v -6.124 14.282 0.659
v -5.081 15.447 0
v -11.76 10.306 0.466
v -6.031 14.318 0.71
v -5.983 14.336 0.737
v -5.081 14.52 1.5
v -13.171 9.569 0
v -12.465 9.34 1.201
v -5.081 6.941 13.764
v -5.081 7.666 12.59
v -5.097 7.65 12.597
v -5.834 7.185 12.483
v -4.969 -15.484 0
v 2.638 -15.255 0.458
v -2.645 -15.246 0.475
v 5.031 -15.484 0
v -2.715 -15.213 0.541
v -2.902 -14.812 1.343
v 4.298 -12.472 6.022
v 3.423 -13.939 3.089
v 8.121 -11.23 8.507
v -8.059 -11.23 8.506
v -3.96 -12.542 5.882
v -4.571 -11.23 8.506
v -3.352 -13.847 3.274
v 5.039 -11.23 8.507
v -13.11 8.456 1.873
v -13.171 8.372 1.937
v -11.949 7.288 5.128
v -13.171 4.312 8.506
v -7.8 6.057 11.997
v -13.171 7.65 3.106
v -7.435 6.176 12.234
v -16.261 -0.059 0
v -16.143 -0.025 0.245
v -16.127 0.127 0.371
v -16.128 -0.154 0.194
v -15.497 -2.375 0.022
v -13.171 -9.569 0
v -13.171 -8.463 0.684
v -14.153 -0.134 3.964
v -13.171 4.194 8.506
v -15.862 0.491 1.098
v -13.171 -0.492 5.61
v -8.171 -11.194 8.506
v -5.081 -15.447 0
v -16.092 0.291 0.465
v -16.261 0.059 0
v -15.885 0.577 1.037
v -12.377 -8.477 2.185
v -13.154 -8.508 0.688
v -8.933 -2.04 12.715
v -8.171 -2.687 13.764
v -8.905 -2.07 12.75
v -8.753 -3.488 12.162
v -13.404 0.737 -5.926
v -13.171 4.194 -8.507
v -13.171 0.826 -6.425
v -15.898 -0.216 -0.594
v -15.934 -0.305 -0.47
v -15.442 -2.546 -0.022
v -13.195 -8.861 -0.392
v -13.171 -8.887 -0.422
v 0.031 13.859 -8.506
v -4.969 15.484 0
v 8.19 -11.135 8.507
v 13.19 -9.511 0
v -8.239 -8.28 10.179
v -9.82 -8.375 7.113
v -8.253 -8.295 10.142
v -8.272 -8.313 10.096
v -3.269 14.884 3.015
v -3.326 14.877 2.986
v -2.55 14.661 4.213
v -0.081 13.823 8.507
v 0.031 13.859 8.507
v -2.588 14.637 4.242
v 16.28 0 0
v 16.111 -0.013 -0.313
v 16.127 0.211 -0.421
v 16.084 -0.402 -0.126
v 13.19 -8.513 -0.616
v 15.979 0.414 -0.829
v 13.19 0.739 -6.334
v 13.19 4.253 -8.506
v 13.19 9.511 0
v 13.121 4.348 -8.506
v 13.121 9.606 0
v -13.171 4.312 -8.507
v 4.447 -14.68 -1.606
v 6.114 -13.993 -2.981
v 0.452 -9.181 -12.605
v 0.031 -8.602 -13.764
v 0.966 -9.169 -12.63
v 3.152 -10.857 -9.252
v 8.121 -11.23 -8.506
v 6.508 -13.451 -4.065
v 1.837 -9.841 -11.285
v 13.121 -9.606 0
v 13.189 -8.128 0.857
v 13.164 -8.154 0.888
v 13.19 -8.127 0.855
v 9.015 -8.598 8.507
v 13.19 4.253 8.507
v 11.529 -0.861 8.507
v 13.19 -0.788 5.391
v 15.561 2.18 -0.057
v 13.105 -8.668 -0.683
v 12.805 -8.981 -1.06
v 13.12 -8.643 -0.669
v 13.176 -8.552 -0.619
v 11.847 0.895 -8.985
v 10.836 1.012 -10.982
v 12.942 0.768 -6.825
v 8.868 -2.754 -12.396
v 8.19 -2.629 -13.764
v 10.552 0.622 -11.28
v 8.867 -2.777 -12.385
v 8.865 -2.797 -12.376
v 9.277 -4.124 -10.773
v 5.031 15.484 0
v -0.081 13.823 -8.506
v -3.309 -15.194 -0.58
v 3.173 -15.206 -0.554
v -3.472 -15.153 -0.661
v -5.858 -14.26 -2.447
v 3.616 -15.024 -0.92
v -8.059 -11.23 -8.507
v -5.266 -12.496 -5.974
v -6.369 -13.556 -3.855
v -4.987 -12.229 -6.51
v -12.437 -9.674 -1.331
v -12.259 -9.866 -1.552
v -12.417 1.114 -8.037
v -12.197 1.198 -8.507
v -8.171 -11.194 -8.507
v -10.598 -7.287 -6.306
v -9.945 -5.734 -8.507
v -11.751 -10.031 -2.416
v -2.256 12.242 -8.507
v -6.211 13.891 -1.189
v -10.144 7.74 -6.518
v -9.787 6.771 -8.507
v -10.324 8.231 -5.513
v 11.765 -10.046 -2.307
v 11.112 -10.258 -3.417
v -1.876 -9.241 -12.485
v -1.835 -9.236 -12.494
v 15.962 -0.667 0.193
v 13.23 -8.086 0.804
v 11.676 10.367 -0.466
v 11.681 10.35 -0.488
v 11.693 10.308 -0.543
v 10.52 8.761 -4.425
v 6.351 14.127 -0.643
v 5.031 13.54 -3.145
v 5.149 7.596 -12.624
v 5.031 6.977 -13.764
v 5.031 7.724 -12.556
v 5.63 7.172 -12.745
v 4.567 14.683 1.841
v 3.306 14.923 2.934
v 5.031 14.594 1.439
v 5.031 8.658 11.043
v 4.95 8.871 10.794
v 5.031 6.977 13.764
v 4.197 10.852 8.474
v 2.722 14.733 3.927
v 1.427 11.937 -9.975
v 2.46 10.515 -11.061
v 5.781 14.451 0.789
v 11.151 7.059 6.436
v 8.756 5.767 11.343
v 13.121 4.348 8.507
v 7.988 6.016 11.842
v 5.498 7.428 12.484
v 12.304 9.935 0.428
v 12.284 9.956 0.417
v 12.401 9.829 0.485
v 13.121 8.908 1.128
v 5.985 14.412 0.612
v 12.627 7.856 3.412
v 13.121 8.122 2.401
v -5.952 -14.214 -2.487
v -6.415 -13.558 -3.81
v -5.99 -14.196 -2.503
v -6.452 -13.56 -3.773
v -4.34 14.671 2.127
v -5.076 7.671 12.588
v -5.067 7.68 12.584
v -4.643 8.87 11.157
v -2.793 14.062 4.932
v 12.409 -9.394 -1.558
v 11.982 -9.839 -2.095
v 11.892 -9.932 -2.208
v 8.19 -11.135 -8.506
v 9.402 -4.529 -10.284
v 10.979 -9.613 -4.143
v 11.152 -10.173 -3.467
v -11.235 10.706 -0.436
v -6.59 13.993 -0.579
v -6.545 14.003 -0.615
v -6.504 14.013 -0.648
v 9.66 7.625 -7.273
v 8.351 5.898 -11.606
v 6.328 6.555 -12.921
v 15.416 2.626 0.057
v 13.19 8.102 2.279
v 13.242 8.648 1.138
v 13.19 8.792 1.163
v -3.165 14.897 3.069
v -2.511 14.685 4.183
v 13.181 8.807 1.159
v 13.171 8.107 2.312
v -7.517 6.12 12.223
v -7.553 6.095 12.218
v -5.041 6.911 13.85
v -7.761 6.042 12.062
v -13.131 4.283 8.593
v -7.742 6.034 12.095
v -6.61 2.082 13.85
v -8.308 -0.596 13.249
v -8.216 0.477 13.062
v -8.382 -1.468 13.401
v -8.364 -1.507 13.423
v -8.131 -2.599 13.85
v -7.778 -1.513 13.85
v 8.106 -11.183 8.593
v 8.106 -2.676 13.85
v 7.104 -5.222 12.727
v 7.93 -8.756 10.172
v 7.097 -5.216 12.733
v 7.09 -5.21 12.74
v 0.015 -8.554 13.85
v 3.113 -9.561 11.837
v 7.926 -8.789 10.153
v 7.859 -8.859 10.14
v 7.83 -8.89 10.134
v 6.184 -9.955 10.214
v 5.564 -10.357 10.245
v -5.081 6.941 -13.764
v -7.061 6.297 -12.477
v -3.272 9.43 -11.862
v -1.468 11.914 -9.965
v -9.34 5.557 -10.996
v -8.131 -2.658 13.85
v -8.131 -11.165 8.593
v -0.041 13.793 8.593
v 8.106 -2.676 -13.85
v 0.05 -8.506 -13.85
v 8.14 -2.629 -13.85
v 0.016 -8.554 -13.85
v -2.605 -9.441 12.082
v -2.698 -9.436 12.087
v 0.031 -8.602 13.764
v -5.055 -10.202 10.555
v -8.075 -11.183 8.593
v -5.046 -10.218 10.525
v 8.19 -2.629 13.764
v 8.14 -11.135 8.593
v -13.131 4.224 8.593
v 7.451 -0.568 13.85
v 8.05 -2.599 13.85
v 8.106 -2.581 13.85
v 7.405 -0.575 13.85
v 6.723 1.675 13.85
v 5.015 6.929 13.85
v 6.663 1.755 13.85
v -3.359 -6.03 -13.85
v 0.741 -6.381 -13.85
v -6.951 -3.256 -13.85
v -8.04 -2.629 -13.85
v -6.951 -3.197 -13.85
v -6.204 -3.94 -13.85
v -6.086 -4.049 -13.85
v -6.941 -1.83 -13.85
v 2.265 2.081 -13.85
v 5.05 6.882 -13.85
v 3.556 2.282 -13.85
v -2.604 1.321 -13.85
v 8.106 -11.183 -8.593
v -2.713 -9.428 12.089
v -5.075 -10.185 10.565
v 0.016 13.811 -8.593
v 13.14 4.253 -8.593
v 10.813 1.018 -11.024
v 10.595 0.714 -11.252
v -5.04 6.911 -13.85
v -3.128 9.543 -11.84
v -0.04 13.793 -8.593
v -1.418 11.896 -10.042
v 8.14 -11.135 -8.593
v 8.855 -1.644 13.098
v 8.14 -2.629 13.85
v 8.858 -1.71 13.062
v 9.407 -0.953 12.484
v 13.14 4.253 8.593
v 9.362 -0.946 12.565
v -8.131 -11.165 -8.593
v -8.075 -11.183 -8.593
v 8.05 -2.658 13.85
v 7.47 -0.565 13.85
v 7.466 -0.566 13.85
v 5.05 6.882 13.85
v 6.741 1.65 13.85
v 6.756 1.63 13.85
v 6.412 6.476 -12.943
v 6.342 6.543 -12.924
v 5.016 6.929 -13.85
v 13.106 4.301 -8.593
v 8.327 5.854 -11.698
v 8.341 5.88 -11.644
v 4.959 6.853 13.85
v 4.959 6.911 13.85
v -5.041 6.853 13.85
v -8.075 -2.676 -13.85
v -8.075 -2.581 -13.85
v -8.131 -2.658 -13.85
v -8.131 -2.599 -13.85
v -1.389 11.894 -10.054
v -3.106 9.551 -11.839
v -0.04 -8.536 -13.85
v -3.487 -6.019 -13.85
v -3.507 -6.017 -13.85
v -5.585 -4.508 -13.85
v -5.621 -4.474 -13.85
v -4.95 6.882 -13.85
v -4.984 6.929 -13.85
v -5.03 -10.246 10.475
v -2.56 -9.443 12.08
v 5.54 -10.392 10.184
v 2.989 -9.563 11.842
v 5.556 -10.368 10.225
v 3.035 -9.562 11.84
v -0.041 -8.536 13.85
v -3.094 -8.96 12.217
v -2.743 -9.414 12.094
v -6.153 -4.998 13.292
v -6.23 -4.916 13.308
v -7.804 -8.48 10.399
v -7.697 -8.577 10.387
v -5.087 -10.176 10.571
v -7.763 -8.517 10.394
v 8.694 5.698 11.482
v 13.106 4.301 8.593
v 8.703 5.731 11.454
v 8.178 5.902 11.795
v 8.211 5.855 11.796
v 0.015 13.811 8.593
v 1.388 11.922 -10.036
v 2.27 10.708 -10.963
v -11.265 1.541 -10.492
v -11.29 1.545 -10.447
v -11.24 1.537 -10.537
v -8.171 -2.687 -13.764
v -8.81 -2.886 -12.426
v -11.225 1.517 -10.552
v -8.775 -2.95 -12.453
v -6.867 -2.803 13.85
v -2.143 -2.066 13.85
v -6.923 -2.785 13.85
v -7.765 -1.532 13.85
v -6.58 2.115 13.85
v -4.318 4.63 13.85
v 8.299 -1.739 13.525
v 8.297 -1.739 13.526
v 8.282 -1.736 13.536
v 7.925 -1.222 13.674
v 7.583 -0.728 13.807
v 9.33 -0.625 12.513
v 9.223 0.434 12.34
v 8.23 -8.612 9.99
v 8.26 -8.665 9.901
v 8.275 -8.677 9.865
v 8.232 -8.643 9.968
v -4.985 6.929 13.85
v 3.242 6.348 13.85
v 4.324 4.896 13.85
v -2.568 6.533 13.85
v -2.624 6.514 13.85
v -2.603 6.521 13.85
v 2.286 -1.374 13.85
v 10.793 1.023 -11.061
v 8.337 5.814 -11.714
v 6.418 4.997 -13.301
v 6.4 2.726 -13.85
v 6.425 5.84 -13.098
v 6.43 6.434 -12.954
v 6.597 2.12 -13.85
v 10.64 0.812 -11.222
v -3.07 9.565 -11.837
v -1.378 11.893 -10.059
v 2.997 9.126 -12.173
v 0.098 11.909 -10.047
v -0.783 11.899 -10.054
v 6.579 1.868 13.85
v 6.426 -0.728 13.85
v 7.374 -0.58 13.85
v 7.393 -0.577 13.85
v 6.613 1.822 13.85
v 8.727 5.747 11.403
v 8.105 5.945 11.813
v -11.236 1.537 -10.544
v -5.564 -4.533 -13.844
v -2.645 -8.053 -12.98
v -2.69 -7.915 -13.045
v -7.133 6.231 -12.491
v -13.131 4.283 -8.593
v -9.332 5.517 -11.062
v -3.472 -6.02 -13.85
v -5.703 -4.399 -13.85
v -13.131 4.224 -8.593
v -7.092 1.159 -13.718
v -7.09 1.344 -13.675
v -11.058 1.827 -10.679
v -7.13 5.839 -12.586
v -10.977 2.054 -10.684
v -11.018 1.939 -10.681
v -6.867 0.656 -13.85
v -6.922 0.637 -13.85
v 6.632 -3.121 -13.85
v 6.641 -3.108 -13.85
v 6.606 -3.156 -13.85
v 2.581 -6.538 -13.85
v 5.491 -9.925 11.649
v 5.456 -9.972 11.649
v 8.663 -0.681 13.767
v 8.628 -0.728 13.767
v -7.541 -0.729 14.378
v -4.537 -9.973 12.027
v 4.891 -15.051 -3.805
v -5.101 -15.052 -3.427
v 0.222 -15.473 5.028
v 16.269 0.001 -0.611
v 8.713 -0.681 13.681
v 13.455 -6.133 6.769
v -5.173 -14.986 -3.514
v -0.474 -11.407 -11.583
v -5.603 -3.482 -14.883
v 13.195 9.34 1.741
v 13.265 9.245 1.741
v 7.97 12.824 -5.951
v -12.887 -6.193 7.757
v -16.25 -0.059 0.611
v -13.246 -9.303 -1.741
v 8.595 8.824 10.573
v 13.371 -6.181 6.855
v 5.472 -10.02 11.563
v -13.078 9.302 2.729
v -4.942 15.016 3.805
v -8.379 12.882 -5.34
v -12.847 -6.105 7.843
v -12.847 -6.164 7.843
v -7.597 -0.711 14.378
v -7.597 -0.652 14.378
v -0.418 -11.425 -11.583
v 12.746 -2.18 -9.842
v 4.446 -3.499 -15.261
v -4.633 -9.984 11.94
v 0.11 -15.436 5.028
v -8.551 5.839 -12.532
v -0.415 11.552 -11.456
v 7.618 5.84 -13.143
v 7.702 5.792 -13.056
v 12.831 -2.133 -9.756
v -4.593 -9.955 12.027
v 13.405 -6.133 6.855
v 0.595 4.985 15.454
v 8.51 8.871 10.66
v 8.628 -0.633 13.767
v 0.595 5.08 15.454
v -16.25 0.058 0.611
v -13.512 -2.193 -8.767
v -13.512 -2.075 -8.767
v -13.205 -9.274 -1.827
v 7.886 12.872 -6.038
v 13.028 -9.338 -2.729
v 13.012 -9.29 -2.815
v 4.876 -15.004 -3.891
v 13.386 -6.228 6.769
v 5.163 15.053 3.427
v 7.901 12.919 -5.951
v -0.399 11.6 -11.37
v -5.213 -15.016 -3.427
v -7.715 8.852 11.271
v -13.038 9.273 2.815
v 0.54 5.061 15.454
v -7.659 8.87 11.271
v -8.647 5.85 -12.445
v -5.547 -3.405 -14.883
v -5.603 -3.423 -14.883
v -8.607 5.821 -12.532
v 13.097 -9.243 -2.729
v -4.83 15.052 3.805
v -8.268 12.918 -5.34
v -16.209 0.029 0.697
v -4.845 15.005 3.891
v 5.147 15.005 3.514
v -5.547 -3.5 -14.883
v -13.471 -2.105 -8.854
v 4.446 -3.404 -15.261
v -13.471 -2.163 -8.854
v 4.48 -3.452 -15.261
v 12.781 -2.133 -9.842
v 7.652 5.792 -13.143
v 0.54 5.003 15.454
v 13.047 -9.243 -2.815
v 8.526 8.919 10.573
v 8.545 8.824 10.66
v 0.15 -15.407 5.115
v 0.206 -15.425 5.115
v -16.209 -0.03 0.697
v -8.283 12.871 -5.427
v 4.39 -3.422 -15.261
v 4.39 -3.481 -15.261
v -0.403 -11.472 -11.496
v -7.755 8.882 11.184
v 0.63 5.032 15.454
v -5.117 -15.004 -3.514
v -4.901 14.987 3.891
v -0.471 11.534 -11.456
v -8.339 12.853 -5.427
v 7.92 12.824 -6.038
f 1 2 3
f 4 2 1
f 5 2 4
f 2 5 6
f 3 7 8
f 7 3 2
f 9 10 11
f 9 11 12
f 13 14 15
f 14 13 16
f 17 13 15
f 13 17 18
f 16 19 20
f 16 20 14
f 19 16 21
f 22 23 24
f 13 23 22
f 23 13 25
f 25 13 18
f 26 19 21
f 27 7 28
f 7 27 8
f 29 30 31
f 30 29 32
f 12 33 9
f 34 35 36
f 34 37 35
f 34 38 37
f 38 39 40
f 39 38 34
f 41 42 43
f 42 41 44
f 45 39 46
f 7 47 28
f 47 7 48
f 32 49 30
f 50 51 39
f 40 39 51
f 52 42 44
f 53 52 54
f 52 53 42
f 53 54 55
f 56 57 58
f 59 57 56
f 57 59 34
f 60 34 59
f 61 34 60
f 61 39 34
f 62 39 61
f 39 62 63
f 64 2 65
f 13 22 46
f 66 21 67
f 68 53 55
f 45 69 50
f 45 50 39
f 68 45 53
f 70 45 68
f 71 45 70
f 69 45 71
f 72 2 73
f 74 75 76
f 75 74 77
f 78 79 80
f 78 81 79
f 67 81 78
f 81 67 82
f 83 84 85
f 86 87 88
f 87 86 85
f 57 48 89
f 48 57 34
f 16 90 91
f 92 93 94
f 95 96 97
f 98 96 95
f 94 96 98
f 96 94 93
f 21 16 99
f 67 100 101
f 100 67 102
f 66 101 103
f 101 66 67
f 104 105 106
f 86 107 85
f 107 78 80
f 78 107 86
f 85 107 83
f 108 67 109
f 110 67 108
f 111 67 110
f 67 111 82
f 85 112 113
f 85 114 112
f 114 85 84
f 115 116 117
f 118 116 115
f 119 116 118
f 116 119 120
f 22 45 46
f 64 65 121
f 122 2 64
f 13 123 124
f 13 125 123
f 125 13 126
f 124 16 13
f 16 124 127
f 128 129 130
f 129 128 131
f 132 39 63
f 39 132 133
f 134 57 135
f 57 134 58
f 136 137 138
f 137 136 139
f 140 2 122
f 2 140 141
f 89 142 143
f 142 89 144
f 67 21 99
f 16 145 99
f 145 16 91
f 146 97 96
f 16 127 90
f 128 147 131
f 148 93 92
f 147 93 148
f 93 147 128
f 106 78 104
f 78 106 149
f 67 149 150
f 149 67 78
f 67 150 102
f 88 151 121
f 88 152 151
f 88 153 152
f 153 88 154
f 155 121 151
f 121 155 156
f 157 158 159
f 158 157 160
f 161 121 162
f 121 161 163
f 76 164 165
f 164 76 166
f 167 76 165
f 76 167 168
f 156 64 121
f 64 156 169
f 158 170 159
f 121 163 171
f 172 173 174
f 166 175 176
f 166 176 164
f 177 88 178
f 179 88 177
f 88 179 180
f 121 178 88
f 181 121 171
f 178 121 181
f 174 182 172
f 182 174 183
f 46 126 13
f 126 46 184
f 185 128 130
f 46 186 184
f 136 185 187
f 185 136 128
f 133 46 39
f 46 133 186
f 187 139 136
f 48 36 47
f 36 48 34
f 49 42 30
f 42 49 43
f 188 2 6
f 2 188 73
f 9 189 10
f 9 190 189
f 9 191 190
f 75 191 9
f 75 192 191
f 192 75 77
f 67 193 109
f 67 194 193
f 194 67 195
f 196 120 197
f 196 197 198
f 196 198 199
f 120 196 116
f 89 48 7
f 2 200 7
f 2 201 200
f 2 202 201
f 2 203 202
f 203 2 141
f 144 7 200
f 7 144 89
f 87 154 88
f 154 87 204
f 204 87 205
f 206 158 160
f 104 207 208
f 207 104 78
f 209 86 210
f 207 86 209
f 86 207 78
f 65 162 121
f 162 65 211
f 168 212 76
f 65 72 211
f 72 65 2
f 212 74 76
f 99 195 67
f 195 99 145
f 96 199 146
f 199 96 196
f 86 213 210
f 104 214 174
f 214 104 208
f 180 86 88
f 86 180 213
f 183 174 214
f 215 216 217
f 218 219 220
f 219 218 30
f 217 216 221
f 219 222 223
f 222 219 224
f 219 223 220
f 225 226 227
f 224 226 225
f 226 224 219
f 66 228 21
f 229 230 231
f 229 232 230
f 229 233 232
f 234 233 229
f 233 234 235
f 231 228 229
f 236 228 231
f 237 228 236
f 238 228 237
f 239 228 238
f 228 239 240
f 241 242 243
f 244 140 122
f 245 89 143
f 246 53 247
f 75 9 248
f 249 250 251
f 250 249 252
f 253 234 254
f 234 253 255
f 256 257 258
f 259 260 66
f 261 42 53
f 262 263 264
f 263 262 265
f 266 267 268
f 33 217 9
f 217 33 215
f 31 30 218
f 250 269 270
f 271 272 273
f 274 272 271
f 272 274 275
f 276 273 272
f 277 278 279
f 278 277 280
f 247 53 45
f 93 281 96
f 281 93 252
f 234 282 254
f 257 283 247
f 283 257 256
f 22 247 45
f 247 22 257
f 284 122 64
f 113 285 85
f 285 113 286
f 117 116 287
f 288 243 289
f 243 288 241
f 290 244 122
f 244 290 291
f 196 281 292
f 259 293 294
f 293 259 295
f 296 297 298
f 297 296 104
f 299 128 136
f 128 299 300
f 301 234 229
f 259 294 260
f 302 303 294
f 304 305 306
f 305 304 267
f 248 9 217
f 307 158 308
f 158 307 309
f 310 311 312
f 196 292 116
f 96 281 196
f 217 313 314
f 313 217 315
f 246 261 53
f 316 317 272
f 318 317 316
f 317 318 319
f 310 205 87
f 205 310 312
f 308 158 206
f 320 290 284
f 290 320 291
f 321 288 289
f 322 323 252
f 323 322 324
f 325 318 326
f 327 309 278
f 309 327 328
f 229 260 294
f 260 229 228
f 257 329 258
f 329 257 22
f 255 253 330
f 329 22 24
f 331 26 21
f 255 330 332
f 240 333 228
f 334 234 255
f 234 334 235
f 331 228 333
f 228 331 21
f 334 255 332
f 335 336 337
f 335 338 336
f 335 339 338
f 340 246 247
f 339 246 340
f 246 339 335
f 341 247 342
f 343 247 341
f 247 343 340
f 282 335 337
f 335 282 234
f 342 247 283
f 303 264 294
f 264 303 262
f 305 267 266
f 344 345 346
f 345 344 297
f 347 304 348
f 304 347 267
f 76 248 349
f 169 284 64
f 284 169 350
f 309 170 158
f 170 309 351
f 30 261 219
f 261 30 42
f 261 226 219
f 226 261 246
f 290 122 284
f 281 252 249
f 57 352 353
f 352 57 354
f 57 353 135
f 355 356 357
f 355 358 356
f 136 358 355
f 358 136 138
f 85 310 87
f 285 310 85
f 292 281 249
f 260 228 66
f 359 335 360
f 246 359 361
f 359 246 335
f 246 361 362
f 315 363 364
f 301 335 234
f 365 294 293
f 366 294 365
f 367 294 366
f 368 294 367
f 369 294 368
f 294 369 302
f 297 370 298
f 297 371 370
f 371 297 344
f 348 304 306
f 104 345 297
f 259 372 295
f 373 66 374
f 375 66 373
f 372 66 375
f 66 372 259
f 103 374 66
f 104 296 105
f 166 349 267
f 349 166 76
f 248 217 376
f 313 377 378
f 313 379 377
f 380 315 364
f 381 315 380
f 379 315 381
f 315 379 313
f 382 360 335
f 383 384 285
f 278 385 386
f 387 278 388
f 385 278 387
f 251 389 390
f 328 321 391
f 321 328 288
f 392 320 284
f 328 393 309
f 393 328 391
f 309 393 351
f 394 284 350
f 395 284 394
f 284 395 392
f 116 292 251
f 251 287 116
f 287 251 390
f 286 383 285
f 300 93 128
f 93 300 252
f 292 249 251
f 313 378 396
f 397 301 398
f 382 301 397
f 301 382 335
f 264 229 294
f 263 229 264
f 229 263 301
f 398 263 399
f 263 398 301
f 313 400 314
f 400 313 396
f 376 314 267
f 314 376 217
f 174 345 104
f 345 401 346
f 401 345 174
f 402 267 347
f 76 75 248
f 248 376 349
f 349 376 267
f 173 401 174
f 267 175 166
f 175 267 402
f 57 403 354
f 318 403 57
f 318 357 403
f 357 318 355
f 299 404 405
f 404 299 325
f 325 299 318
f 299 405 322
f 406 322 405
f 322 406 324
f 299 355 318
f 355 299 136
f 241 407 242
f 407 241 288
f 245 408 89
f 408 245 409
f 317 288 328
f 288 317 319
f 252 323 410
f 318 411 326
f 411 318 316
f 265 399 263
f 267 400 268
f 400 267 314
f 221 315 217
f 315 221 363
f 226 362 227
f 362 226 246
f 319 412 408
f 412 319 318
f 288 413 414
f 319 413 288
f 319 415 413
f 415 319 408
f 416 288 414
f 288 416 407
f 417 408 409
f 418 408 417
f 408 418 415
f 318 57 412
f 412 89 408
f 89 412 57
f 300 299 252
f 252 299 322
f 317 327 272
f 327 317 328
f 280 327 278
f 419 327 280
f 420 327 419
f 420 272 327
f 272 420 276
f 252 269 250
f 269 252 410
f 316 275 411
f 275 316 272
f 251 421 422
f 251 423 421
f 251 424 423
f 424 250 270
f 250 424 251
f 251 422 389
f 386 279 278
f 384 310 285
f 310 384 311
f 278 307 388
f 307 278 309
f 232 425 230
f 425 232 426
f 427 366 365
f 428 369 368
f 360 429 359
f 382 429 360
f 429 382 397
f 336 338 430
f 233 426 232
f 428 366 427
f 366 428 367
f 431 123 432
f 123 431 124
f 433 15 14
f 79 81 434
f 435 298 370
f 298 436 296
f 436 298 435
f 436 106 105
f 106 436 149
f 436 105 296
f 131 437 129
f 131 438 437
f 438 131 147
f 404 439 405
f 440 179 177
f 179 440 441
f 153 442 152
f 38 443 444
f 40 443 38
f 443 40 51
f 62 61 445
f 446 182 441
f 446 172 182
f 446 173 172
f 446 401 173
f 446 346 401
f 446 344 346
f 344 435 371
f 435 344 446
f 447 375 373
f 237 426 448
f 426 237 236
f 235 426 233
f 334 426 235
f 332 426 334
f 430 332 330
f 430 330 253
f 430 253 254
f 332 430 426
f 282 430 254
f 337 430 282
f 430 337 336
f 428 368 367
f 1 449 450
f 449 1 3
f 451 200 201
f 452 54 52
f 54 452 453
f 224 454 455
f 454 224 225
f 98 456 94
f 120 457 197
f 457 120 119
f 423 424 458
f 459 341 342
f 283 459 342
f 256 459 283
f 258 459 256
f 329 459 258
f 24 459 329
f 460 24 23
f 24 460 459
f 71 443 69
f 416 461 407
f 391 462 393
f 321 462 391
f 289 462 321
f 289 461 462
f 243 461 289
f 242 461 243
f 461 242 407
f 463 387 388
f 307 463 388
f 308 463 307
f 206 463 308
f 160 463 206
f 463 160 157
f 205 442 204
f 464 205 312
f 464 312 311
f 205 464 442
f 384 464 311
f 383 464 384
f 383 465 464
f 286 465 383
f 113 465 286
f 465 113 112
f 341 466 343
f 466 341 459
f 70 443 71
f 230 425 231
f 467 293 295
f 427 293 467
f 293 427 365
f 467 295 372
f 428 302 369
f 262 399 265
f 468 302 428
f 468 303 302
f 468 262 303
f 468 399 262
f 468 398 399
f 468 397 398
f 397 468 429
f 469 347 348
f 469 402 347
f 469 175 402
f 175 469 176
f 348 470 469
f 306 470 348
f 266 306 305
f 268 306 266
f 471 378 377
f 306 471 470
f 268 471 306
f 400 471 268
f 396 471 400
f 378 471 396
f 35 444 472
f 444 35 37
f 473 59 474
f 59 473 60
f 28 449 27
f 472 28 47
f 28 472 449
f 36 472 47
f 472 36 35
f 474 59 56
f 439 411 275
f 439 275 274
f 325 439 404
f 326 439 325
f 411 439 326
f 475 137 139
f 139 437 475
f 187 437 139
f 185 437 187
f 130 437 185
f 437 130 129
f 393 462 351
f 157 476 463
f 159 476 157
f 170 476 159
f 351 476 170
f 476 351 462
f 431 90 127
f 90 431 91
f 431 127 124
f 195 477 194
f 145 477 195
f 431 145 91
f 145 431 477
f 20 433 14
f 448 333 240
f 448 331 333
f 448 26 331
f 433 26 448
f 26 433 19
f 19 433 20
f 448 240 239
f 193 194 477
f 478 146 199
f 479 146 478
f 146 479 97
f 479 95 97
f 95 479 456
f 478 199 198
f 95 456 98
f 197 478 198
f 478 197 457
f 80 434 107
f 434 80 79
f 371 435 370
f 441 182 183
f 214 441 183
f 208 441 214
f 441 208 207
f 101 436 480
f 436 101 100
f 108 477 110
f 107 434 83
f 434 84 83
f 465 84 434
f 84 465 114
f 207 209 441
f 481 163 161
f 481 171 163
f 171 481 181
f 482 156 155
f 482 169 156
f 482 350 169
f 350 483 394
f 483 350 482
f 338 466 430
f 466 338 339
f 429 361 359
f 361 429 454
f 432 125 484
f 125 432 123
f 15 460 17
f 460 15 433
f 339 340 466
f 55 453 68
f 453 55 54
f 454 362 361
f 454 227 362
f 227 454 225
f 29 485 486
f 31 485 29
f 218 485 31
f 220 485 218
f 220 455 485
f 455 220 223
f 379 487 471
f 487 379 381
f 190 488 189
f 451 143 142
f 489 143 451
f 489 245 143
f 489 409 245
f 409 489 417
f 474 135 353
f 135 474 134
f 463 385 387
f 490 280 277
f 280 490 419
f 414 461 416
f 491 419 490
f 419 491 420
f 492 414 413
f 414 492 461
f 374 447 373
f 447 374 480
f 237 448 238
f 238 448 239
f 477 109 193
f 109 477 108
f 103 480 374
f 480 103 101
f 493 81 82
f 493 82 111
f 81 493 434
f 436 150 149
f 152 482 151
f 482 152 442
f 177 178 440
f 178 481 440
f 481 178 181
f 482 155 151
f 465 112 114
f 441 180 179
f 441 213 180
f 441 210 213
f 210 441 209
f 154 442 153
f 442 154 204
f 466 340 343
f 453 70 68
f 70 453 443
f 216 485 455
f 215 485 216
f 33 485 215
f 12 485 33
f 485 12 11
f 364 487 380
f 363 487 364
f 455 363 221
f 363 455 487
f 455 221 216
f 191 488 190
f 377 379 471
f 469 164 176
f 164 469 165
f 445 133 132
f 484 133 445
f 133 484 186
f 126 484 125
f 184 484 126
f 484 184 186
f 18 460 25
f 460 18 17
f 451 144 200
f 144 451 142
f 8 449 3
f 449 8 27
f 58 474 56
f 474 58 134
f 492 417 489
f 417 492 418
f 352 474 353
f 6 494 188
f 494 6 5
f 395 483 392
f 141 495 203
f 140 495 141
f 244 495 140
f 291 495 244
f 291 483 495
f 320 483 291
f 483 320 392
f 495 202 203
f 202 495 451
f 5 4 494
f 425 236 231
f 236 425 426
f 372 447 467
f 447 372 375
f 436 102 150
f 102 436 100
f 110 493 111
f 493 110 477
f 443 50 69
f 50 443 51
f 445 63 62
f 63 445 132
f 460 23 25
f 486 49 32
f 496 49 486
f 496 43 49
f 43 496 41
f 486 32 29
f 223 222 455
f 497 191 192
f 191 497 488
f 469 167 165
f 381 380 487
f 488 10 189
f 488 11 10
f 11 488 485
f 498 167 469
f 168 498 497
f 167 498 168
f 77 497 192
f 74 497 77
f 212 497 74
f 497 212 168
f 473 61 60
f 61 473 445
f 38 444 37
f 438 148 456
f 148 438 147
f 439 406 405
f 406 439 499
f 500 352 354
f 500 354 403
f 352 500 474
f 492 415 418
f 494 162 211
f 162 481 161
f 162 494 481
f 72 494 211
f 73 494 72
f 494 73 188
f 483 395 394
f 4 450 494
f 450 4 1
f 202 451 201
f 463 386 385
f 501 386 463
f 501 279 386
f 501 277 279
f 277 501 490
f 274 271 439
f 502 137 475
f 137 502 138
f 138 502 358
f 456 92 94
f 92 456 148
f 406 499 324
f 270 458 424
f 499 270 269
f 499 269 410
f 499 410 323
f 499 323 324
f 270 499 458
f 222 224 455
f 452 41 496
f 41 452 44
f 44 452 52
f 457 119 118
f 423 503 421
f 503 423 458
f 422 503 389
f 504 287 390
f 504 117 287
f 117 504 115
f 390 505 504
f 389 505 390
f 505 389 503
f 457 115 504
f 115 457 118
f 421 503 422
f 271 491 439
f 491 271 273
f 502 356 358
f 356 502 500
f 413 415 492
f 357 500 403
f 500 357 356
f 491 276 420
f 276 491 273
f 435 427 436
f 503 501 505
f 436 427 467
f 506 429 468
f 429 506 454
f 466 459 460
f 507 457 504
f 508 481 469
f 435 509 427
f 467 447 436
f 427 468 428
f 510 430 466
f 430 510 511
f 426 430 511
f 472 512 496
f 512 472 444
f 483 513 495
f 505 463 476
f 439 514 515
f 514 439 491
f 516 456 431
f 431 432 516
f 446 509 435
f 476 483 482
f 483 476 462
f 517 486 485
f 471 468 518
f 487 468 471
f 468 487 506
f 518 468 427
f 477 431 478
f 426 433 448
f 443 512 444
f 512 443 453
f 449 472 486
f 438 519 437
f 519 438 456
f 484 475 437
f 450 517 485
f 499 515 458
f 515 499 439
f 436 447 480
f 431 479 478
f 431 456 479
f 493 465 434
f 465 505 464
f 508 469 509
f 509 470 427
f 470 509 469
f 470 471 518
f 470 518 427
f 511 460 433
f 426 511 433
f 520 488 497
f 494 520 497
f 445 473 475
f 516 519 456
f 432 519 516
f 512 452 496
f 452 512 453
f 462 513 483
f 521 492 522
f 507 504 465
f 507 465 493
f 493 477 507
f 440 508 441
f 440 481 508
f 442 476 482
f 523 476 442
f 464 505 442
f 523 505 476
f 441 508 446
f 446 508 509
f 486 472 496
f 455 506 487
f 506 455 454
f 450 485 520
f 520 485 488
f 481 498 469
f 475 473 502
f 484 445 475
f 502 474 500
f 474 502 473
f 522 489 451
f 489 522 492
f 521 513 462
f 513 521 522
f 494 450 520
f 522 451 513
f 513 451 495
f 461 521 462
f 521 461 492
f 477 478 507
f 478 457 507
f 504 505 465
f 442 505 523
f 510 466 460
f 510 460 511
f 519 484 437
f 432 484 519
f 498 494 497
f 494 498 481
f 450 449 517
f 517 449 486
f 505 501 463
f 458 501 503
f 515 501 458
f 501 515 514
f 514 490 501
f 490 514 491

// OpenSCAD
// Auto-generated OpenSCAD file

    inner_points = 10*[[-0.5132325915335268, -1.4956773870023274, -0.34271512053890807], [0.5132015226290007, 1.4957694784624385, 0.34271512053890807], [-1.3164886558141748, -0.9244174678024033, -0.17406815225290823], [0.4860549449459691, -1.4956217926681488, -0.3804565612375623], [-0.4860860138504952, 1.4957138841282598, 0.3804565612375623], [1.3164575869096489, 0.9245095592625141, 0.17406815225290823], [-1.616896733010238, -4.390779222781e-05, 0.06106693383481107], [1.299680079223296, -0.924271919945941, -0.2728765267863734], [-1.299711148127822, 0.9243640114060518, 0.2728765267863734], [1.616865664105712, 0.0001359992523386863, -0.06106693383481107], [-0.556237595762048, -0.34523719270611647, -1.479672427436971], [-0.4552213282331215, -0.9925171560774508, 1.1940016601646186], [-0.04302053868078421, 1.1504862400262665, -1.1369573068980627], [0.05799572884814228, 0.5032062766549321, 1.5367167807035265], [0.443049940717448, -0.34518159837193774, -1.517413868135625], [0.5440662082463744, -0.992461561743272, 1.1562602194659646], [0.7602355255998638, 0.579226320826342, -1.3056042751840629], [0.8612517931287903, -0.06805364254499237, 1.3680698124175268], [-0.8566456729581111, 0.5791363673040587, -1.2445373413492518], [-0.7556294054291846, -0.06814359606727556, 1.4291367462523379], [-0.043371596438175015, -1.137724291379308, -1.1496229384598298], [0.019059890311353907, -1.5377653089795797, 0.5027985225178162], [0.7870310455255046, 1.282407060551355, -0.5950982249693593], [0.8494625322750335, 0.8823660429510828, 1.0573232360082867], [-1.3430672101137342, -0.21340632570331178, -0.8767464116734562], [-1.2806357233642052, -0.6134473433035833, 0.7756750493041897], [-0.8298501530324705, 1.2823171070290713, -0.5340312911345482], [-0.7674186662829414, 0.8822760894287998, 1.1183901698430978], [1.2731015249237372, -0.21326077784684974, -0.9755547862069215], [1.3355330116732662, -0.6133017954471214, 0.6768666747707244]];

    outer_points = 10*[[-1.6180339887093724, 0.0, -1.1451363168900623e-05], [1.6180339887093724, 0.0, 1.1451363168900623e-05], [-1.3090169943343848, -0.9510565162945183, -1.0363544707418131e-05], [-1.3090169943499435, 0.9510565162945183, -8.165150117381781e-06], [1.3090169943499435, -0.9510565162945183, 8.165150117381781e-06], [1.3090169943343848, 0.9510565162945183, 1.0363544707418131e-05], [-0.49999999997489053, -1.538841768586599, -5.317204411630996e-06], [-0.5000000000000652, 1.538841768586599, -1.7601272442682922e-06], [0.5000000000000652, -1.538841768586599, 1.7601272442682922e-06], [0.49999999997489053, 1.538841768586599, 5.317204411630996e-06], [-0.8090267354638724, -0.2628671468326607, 1.3763758909435393], [-0.8090072532411997, -0.2628639652861217, -1.3763879499280285], [0.8090072532455, -0.2628671468326607, 1.3763873423067081], [0.8090267354681727, -0.2628639652861217, -1.3763764985648597], [-0.5000097411044434, 0.6881893694618576, 1.3763791771565905], [-0.49999025888177073, 0.6881925510083967, -1.376384663714977], [0.4999902588705123, 0.6881893694618576, 1.3763862544882464], [0.500009741093185, 0.6881925510083967, -1.3763775863833212], [-9.741104378259176e-06, -0.8506523991247412, 1.376380937283835], [9.741118294443999e-06, -0.8506492175782021, -1.3763829035877326], [-1.3090230146835373, 0.42532442102378687, 0.8506420355587297], [-1.3090109740077491, 0.4253263873276848, -0.8506595811016057], [1.309010974000791, 0.42532442102378687, 0.8506605642535546], [1.309023014676579, 0.4253263873276848, -0.8506410524067808], [-0.809023014683472, -1.1135173475628122, 0.850643795685974], [-0.8090109740076838, -1.1135153812589142, -0.8506578209743614], [0.8090109740259004, -1.1135173475628122, 0.8506552470491429], [0.8090230147016886, -1.1135153812589142, -0.8506463696111926], [-6.020349152492207e-06, 1.3763809373183054, 0.8506523991034373], [6.020326635632171e-06, 1.3763829036222033, -0.8506492175568982]];

    // Convex hull for inner set (I)
    module inner_hull() {
        hull() {
            for (p = inner_points) {
                translate(p) sphere(r=0.1);
            }
        }
    }

    // Convex hull for outer set (O) minus inner hull (O \ I)
    module outer_minus_inner() {
        difference() {
            hull() {
                for (p = outer_points) {
                    translate(p) sphere(r=0.1);
                }
            }
            inner_hull(); // Subtract inner hull
        }
    }

    // Convex hull for outer set (O) minus all translated inner hulls
    module outer_minus_AllTranslationInner() {
        difference() {
            hull() {
                for (p = outer_points) {
                    translate(p) sphere(r=0.1);
                }
            }
            hull() {
                translate([0,0,50]) inner_hull();
                translate([0,0,-50]) inner_hull();
            }; // Subtract translated inner hulls
        }
    }

    // Difference between outer_minus_inner and outer_minus_AllTranslationInner
    module outer_minus_inner_diff() {
        difference() {
            // Outer minus inner
            difference() {
                hull() {
                    for (p = outer_points) {
                        translate(p) sphere(r=0.1);
                    }
                }
                inner_hull();
            }

            // Subtract Outer minus AllTranslationInner
            difference() {
                hull() {
                    for (p = outer_points) {
                        translate(p) sphere(r=0.1);
                    }
                }
                hull() {
                    translate([0,0,50]) inner_hull();
                    translate([0,0,-50]) inner_hull();
                };
            }
        }
    }

    // Rendering all with colors applied
    color([1, 0, 0, 0.5]) inner_hull(); // Transparent red
    color([0, 1, 0, 1]) outer_minus_AllTranslationInner(); // Opaque green
    color([1, 1, 0, 1]) outer_minus_inner_diff(); // Opaque yellow
    
